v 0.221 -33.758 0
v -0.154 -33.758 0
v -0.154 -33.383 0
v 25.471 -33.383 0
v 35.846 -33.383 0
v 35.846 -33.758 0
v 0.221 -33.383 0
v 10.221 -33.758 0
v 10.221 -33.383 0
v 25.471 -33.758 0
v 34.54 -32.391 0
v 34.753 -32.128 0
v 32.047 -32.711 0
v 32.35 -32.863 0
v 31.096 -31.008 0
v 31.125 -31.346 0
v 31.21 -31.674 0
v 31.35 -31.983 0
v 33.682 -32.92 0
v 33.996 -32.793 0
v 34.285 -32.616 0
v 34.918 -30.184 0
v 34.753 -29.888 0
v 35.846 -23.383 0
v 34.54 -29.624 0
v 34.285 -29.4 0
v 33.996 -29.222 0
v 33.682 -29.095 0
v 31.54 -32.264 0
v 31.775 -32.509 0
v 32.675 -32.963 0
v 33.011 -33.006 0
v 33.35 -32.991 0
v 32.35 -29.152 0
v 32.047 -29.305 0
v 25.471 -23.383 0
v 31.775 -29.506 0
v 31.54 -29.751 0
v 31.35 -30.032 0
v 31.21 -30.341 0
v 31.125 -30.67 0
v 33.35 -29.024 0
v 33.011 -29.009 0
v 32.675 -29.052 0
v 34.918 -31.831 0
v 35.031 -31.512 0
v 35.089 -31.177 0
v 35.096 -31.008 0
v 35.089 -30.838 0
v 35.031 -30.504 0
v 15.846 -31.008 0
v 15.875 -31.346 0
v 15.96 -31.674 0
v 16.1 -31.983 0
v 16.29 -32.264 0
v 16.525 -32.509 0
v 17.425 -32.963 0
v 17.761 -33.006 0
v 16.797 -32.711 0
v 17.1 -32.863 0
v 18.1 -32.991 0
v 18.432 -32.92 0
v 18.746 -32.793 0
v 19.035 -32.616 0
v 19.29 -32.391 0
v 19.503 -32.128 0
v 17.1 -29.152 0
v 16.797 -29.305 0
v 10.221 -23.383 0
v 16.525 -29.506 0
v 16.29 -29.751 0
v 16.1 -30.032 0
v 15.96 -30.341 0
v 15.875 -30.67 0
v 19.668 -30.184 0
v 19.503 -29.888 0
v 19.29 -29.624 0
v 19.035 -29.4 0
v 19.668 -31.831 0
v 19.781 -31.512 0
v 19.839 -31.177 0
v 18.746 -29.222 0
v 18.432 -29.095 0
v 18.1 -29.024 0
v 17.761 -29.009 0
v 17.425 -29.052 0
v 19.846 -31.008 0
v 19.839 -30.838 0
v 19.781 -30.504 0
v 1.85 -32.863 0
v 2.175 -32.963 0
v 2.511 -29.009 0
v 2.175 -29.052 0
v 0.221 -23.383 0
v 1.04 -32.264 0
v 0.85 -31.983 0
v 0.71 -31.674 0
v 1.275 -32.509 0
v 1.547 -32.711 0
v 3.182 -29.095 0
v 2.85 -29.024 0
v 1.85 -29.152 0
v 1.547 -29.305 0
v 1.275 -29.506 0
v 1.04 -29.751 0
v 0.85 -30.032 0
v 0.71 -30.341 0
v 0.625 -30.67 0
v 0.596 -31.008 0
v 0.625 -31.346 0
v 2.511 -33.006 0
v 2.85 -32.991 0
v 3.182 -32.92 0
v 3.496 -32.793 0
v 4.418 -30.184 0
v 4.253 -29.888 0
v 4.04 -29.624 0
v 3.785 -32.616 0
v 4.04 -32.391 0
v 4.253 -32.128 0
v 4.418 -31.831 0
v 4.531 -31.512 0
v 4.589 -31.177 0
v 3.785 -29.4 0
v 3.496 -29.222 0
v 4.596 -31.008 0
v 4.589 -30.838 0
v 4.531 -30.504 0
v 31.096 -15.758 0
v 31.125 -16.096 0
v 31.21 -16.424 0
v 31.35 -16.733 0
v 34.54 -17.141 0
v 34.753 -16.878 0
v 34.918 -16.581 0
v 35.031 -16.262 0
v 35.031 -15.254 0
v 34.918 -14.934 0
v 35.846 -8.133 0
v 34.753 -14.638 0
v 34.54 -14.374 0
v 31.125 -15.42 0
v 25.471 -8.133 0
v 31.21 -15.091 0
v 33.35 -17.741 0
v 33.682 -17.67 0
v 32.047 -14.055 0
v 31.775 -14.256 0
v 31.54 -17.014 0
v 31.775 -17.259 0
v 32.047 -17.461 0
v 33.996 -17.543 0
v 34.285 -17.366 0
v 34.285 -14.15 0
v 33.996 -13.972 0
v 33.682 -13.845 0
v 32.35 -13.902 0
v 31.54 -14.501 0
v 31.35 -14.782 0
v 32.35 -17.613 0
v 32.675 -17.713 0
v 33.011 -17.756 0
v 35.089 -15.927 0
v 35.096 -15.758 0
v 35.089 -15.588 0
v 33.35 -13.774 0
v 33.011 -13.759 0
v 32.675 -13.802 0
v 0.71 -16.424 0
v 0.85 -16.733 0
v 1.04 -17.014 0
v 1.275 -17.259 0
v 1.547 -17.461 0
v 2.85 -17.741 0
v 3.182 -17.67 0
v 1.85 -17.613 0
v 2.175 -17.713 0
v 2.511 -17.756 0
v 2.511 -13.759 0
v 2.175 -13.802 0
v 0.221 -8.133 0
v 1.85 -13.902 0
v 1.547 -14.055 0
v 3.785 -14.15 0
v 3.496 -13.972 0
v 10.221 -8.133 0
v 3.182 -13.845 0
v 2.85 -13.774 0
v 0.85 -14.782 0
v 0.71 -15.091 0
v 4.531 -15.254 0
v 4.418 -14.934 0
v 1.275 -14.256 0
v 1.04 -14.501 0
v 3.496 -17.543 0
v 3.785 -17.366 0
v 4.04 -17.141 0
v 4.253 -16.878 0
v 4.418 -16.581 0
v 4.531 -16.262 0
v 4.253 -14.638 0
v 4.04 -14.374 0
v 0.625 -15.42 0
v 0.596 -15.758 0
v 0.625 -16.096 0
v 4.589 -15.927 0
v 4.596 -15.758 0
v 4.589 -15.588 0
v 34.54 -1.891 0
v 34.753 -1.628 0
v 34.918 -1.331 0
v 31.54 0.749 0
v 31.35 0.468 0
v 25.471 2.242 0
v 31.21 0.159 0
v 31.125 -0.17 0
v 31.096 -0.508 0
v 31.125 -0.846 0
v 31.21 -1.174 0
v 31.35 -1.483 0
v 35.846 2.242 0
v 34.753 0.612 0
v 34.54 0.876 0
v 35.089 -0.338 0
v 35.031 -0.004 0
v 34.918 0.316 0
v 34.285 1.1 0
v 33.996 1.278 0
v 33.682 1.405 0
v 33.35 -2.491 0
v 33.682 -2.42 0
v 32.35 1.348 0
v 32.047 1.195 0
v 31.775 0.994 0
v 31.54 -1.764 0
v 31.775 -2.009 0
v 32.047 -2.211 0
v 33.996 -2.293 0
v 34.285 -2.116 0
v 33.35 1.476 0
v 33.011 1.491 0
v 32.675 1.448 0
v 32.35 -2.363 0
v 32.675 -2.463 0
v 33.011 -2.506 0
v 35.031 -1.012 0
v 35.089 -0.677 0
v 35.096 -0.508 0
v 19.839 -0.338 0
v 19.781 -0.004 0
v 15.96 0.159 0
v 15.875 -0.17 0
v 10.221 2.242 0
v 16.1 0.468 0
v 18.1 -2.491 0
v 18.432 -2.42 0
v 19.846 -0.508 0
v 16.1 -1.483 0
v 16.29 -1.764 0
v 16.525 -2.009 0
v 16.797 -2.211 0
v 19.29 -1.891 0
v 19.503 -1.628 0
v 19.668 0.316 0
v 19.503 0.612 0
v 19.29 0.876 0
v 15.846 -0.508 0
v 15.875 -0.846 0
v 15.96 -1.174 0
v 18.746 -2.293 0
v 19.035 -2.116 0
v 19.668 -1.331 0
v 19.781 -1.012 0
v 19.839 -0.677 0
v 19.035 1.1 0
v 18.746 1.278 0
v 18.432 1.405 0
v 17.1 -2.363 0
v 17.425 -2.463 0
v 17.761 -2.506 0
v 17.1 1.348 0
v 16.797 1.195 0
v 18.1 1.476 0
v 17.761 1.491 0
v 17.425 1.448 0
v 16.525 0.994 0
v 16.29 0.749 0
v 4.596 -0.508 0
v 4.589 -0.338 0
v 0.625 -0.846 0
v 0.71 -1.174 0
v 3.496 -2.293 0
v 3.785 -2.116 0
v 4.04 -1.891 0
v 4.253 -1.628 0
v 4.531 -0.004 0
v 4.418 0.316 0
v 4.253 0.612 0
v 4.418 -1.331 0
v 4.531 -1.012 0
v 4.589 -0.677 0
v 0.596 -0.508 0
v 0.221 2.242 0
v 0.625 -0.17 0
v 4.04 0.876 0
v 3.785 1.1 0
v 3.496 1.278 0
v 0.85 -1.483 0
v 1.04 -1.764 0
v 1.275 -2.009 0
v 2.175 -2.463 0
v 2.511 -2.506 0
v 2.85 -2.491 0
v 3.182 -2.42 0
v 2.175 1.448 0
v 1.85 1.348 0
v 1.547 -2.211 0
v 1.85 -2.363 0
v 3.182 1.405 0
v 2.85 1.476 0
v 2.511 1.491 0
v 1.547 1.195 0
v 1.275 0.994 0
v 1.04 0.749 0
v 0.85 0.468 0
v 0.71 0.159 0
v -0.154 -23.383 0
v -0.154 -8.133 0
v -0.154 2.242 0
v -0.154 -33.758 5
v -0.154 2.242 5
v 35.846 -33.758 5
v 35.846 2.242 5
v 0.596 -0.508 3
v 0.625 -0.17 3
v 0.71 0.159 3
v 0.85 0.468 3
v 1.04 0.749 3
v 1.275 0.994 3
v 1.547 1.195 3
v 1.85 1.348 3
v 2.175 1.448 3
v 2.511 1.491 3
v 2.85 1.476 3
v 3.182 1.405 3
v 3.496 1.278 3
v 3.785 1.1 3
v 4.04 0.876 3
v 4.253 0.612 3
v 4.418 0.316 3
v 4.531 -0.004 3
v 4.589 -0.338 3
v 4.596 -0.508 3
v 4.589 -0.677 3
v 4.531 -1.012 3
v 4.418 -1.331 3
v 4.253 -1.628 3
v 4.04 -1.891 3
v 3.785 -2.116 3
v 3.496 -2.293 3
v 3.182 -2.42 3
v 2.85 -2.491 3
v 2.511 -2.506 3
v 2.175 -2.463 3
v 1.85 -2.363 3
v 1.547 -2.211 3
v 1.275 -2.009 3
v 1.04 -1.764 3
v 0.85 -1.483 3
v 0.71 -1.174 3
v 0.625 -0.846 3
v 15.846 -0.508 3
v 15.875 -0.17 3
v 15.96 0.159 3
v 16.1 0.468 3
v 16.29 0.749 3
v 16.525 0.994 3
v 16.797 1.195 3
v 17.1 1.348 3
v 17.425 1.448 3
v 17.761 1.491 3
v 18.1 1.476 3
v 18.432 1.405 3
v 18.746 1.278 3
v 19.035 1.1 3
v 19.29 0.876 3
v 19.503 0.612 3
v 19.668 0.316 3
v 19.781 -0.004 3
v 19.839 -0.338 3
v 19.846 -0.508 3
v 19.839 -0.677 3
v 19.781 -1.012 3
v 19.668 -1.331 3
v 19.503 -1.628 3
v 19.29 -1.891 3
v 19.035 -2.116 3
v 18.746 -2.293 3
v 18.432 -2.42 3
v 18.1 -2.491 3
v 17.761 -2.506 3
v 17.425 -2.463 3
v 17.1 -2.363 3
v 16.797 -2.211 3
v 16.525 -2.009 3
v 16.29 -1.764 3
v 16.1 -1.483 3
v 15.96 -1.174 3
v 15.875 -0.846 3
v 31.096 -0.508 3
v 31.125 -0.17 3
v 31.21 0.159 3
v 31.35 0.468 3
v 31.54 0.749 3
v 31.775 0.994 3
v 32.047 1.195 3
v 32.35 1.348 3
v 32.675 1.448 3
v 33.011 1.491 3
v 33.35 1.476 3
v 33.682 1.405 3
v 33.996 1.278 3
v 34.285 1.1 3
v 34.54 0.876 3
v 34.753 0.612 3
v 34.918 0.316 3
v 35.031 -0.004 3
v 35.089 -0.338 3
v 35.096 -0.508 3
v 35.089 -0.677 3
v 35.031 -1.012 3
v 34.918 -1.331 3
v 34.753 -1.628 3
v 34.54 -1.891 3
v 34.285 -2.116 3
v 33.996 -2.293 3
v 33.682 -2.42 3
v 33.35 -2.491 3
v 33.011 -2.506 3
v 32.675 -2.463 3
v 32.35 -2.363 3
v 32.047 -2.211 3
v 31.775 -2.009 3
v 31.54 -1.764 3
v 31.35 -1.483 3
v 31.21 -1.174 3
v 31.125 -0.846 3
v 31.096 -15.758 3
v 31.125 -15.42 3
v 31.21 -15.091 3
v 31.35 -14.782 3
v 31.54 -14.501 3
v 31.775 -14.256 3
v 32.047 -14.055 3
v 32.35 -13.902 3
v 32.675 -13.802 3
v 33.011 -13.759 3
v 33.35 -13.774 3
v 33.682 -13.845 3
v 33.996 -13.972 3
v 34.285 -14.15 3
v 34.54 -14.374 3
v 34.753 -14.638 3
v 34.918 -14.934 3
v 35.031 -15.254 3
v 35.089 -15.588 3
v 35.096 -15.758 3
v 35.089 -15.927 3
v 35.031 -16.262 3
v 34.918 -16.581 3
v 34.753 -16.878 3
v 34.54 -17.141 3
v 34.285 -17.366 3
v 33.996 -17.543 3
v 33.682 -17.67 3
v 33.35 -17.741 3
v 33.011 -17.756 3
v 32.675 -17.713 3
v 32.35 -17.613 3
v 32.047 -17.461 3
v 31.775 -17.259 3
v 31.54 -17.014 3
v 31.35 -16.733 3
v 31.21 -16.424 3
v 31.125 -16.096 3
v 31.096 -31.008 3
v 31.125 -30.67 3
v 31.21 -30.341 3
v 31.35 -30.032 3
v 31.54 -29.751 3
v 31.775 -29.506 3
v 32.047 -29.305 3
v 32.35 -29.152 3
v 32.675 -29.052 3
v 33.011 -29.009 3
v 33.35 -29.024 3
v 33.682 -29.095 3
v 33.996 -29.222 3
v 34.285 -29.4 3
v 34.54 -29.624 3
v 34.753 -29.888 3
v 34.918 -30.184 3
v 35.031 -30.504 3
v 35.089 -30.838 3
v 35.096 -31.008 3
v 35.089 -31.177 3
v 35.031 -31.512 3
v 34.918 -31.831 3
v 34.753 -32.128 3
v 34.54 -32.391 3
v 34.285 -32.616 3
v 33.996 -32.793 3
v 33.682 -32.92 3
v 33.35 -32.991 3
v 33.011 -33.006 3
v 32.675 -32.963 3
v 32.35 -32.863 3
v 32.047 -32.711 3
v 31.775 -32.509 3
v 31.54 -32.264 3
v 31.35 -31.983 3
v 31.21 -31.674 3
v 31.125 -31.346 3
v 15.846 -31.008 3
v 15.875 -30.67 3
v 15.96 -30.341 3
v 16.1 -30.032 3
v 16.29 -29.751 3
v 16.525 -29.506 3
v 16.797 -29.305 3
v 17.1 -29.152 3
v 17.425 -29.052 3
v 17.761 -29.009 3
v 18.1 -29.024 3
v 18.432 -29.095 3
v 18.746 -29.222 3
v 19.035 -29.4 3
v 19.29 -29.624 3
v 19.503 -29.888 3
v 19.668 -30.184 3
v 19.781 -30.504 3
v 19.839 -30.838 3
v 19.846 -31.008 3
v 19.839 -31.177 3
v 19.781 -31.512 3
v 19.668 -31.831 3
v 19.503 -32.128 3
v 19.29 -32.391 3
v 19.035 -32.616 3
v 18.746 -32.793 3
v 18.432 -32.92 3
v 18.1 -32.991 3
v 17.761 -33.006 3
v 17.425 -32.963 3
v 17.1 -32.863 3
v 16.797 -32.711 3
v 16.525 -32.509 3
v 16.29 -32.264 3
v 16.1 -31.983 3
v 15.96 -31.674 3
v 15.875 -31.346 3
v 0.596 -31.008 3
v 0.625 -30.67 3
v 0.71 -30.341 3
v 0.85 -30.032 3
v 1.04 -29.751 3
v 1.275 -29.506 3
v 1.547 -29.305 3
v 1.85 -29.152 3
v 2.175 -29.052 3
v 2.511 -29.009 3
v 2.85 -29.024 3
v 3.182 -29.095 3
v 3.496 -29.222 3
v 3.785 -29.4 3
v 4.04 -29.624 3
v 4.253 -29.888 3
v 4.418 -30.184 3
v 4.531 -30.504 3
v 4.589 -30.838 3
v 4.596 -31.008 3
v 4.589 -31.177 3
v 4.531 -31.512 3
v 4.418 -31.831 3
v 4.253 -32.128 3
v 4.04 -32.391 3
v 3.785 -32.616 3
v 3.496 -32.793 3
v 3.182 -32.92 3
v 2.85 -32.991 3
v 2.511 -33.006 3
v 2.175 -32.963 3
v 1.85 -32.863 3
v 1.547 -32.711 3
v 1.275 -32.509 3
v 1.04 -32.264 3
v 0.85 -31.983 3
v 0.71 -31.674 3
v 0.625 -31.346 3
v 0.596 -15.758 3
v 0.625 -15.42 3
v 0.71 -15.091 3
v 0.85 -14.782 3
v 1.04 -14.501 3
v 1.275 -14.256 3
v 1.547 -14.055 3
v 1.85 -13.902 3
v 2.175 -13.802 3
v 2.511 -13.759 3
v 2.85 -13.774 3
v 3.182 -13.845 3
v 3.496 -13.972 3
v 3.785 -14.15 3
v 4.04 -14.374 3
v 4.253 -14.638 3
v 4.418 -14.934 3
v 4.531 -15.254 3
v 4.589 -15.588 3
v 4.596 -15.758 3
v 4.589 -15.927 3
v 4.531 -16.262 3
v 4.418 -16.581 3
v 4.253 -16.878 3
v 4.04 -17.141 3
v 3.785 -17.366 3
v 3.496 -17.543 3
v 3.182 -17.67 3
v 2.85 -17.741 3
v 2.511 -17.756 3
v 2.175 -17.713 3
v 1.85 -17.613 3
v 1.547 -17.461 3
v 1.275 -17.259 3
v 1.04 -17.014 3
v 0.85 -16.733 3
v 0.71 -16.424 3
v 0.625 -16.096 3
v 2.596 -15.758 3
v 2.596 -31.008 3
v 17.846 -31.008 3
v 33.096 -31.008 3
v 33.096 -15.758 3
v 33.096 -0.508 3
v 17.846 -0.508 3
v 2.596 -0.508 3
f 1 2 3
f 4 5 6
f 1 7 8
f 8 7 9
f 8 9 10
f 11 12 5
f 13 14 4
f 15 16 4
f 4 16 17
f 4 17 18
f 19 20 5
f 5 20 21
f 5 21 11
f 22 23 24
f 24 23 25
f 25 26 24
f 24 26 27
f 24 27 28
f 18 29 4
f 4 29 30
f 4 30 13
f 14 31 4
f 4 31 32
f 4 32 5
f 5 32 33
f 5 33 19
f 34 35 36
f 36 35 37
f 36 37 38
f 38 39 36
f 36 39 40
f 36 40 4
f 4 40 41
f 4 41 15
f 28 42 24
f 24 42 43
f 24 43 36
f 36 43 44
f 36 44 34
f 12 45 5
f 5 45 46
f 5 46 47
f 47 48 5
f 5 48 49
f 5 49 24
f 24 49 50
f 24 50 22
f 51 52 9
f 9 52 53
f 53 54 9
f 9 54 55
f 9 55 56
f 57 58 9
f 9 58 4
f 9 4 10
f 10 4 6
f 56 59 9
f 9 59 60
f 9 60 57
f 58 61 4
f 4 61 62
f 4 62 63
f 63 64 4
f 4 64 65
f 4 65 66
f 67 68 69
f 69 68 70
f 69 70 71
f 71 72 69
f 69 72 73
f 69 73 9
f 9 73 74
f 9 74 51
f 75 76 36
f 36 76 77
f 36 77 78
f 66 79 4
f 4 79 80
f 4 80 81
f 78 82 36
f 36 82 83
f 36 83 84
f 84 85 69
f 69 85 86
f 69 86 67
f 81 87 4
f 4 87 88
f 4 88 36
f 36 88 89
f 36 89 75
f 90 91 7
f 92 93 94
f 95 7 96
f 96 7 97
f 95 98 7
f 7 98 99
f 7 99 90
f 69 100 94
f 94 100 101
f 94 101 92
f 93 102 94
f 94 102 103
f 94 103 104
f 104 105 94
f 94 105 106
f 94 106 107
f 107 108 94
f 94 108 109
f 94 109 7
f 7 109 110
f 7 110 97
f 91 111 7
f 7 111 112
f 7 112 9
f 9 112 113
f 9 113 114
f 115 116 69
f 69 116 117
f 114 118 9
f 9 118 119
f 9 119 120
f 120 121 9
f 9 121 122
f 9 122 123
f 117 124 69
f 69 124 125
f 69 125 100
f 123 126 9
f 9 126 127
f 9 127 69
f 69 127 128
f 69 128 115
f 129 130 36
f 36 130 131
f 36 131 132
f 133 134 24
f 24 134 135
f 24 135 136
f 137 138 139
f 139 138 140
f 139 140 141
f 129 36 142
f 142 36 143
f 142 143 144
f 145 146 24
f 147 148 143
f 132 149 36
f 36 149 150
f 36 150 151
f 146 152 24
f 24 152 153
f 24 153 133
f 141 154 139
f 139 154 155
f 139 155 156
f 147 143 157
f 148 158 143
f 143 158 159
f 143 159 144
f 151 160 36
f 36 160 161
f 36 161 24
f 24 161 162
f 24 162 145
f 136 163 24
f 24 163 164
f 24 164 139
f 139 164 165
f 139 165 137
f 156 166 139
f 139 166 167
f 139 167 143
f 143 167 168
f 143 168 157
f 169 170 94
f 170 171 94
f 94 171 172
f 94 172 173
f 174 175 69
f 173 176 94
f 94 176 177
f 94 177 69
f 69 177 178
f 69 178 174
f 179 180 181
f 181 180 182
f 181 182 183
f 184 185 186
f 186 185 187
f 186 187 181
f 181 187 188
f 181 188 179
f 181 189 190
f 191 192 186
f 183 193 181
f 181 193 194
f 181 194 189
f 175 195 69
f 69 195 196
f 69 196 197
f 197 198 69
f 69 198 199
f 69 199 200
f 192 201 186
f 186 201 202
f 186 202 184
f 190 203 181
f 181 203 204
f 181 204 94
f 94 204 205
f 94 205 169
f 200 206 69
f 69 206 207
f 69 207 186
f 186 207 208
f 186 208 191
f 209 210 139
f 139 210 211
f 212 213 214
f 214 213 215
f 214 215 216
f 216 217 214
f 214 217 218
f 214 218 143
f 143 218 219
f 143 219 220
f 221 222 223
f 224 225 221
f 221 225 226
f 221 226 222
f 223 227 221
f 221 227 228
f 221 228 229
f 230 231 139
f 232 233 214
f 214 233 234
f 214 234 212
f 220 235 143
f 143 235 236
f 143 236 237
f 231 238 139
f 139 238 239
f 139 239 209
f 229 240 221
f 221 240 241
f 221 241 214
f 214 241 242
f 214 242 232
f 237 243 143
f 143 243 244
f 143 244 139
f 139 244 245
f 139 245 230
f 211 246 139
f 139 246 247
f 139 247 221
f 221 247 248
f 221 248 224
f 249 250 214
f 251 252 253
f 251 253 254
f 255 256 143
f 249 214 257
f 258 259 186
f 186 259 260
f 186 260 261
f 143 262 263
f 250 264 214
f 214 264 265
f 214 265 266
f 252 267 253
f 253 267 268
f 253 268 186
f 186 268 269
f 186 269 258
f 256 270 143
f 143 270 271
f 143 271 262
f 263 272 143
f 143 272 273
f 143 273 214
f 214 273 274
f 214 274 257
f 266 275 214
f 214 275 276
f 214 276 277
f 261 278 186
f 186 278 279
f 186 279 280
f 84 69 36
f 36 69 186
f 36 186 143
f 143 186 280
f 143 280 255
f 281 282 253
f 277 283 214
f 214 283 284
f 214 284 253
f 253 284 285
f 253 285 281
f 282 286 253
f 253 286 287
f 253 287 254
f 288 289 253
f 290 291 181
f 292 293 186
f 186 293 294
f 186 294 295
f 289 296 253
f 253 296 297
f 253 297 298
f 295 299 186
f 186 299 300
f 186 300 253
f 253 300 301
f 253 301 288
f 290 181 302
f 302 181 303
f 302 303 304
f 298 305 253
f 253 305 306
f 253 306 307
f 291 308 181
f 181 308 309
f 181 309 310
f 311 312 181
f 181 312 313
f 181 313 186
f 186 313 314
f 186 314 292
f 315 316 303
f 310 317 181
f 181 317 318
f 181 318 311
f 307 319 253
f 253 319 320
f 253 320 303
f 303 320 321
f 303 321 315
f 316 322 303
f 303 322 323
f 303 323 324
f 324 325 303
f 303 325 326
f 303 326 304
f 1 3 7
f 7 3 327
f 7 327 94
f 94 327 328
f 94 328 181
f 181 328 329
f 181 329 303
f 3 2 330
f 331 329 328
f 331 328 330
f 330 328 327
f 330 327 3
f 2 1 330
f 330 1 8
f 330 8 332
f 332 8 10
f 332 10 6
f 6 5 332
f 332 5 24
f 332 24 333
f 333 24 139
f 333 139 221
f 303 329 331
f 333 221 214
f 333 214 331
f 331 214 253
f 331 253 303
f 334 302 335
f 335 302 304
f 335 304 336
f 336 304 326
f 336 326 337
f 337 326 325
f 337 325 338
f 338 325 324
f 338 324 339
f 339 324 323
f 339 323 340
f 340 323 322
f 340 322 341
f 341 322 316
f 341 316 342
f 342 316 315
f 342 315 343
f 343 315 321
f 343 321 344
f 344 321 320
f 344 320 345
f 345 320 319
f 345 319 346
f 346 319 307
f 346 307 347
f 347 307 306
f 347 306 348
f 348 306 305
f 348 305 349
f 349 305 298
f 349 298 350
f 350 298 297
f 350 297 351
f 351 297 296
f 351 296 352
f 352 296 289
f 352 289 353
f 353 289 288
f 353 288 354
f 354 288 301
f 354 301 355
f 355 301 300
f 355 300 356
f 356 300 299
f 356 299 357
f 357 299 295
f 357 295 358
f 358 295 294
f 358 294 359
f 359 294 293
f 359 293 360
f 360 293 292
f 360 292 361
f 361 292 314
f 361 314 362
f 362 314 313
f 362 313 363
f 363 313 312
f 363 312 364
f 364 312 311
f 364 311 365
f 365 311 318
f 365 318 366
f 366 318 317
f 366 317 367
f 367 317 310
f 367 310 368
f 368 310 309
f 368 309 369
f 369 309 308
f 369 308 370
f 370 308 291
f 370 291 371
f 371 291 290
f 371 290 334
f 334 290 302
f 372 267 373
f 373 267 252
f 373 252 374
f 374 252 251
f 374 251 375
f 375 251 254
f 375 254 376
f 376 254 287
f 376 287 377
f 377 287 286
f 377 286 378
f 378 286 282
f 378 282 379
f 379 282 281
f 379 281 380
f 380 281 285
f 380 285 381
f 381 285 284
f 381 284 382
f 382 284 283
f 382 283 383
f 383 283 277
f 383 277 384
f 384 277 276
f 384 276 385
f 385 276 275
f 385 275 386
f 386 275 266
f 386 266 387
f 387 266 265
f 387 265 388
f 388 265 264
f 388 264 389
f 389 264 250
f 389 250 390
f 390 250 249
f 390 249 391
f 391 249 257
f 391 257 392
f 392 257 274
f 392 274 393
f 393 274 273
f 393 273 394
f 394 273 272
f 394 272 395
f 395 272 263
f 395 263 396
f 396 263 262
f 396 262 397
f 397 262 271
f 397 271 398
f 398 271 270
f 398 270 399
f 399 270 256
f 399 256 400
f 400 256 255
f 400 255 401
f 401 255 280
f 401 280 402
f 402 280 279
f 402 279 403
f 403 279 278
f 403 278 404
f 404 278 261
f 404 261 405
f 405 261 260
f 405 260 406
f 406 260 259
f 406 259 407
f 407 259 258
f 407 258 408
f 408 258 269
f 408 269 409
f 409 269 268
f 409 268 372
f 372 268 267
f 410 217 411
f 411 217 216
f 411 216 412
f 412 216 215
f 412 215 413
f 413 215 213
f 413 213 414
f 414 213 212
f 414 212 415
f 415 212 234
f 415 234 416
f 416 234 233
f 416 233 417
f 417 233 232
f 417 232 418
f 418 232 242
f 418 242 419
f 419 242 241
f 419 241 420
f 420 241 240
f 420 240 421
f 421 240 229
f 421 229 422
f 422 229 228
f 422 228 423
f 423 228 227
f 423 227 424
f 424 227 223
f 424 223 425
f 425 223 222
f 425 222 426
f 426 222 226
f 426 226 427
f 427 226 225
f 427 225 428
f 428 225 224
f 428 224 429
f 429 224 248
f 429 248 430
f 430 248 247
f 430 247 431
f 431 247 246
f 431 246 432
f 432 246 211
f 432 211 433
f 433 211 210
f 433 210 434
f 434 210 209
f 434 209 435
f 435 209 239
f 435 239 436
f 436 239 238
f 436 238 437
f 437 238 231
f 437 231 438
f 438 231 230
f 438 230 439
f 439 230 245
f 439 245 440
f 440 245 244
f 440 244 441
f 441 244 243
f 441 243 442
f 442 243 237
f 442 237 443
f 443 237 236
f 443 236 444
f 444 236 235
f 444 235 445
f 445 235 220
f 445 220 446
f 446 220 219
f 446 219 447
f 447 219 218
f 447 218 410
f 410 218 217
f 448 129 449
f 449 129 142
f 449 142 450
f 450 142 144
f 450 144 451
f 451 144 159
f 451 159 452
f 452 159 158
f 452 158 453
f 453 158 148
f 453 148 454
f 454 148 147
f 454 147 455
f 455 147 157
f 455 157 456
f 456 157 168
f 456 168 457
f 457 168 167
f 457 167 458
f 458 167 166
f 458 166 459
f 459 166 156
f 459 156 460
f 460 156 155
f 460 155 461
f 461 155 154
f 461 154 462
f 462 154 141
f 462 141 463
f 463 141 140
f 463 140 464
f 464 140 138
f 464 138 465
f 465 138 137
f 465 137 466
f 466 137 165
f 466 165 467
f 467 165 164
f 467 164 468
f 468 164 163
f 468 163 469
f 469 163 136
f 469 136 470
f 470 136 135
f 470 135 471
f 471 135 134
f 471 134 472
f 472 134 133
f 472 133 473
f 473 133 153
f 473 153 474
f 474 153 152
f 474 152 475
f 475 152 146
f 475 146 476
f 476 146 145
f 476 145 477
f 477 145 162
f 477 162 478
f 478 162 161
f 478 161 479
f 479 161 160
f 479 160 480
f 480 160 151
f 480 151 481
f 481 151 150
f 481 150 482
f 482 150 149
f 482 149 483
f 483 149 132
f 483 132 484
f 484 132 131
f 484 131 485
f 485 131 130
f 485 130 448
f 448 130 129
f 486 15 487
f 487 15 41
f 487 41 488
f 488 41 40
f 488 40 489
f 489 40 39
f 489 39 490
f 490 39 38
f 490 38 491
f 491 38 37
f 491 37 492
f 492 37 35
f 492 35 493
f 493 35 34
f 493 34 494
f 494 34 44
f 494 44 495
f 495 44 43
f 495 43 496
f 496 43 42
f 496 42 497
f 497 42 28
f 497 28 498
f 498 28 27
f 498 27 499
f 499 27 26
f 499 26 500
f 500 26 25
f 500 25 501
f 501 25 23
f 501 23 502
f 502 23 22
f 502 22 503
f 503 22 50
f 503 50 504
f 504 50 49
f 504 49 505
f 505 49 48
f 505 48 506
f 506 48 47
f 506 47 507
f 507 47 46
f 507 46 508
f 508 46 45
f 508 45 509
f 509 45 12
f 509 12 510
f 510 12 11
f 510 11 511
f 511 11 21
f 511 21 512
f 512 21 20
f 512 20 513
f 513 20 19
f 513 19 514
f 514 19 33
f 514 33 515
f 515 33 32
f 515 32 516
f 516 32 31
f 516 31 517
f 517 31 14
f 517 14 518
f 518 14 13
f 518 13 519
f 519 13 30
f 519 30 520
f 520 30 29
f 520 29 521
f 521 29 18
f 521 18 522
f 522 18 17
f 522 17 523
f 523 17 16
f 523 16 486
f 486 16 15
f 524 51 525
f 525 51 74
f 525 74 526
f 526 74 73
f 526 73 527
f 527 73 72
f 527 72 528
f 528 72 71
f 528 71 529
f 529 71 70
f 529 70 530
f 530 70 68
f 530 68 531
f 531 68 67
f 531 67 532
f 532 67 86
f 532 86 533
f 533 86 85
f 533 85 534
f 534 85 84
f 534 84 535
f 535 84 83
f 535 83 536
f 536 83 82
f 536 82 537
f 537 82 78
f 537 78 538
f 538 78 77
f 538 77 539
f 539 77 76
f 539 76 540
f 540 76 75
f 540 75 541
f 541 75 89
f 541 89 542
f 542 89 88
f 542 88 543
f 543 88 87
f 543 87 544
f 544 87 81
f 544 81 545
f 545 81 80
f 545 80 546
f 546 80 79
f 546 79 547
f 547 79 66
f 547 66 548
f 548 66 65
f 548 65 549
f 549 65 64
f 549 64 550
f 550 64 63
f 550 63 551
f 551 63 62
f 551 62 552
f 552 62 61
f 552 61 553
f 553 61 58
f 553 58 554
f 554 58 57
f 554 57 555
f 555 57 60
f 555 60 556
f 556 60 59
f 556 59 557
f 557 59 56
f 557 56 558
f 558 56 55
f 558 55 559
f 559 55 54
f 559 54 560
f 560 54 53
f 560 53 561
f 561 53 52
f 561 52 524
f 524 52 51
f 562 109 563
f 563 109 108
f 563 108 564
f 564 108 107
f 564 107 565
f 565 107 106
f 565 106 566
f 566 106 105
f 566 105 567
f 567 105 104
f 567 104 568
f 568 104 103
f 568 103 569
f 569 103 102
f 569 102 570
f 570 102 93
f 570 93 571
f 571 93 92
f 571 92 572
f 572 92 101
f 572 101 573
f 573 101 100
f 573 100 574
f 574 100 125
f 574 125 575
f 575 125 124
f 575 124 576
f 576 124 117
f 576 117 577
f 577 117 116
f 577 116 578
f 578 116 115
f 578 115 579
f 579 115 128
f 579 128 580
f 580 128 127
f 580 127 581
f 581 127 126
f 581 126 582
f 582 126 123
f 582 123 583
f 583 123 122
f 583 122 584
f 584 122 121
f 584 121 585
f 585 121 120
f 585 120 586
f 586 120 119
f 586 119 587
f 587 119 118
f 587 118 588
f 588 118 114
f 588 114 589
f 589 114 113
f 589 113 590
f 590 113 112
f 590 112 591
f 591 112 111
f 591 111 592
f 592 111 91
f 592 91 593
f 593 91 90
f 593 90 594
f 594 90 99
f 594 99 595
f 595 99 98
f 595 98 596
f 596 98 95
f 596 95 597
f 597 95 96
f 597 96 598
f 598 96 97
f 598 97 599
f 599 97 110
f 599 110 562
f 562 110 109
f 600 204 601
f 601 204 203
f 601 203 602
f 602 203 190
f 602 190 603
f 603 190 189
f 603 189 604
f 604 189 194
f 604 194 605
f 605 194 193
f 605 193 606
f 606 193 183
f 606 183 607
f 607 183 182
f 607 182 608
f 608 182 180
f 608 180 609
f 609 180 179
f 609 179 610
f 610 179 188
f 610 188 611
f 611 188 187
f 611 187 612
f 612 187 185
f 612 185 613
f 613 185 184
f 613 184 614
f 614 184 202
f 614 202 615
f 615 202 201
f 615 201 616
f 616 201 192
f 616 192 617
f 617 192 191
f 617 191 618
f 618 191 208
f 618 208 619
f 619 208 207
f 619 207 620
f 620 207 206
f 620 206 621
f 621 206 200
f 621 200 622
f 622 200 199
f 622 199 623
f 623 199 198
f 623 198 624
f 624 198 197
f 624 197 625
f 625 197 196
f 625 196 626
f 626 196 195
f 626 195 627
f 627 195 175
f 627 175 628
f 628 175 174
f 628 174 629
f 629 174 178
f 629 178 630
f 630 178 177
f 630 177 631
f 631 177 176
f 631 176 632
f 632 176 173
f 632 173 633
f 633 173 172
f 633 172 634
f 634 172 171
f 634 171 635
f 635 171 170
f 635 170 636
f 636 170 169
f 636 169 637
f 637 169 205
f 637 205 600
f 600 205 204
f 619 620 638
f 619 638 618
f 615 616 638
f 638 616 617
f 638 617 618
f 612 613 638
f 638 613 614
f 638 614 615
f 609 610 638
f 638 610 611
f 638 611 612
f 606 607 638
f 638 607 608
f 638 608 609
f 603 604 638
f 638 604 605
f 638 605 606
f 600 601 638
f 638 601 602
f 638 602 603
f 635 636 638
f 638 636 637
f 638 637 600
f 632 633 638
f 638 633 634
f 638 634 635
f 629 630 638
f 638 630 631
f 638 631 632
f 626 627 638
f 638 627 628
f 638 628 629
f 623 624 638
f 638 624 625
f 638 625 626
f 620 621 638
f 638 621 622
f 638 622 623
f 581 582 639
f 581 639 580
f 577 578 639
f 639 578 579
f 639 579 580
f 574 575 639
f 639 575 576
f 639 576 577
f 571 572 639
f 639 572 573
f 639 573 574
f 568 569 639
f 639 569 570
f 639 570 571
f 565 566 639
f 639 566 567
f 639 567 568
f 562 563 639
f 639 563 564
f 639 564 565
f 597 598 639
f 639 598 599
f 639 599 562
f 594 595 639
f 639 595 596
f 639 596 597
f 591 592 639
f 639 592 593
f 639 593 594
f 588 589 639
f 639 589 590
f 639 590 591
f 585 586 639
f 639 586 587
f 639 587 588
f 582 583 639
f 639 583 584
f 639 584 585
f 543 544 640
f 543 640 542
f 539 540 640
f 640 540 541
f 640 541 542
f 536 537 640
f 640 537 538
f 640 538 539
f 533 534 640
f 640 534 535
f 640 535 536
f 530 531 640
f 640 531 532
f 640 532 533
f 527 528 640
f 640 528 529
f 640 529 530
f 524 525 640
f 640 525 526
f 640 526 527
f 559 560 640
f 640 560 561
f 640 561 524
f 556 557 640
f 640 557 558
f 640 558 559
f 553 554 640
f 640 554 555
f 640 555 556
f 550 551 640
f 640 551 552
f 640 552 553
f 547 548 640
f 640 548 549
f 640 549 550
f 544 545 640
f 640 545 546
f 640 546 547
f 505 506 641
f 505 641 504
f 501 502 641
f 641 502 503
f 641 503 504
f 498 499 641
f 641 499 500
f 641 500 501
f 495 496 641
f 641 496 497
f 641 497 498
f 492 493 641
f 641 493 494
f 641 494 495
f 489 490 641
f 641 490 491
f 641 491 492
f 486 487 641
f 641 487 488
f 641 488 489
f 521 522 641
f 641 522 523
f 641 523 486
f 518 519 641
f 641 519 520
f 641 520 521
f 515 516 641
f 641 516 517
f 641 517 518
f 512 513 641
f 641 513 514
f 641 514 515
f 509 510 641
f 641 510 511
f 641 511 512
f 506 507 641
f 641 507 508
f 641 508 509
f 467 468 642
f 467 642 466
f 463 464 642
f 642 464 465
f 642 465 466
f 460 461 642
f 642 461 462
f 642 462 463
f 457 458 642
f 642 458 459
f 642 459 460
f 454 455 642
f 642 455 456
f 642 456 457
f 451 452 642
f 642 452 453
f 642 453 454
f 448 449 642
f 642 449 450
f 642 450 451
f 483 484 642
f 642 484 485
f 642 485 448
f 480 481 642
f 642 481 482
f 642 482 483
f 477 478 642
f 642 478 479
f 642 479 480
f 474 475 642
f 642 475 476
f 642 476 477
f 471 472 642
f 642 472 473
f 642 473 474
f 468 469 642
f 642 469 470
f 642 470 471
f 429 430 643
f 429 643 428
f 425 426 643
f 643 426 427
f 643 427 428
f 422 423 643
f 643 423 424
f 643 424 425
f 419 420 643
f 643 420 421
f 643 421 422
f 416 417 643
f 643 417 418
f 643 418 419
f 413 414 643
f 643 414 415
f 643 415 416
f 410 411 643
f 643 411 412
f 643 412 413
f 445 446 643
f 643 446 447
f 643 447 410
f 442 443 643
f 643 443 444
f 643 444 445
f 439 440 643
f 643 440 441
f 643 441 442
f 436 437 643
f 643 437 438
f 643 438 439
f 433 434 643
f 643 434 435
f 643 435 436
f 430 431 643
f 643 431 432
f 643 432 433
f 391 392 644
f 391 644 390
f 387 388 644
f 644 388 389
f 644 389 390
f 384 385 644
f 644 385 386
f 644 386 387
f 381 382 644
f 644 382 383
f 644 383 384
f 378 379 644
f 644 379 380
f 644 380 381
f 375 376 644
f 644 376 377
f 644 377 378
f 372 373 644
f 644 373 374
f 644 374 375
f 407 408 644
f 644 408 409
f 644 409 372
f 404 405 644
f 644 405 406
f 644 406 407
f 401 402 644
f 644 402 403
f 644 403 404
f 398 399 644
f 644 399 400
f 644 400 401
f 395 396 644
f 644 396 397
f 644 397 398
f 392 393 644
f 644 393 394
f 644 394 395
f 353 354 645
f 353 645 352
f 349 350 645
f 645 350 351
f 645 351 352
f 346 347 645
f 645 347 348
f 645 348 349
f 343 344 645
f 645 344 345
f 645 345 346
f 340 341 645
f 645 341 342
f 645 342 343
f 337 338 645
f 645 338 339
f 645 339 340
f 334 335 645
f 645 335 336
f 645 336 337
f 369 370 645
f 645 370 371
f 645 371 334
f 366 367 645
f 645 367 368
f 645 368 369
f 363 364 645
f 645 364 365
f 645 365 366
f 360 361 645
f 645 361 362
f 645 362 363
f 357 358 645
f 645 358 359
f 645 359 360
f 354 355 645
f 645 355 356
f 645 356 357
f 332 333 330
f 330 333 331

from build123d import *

# Parameters (mm, degrees)
SKETCH_1_W      = 36
SKETCH_1_H      = 36
SKETCH_1_R      = 2
EXTRUDE_1_DEPTH = 3
SKETCH_2_W      = 36
SKETCH_2_H      = 36
EXTRUDE_2_DEPTH = 2


with BuildPart() as part:
    # 스케치1 → 보스-돌출1 (new body)
    with BuildSketch(Plane.XY):
        with Locations((17.845923561, -15.757575758)):
            Rectangle(SKETCH_1_W, SKETCH_1_H)
        with Locations((2.595923561, -0.507575758)):
            Circle(SKETCH_1_R, mode=Mode.SUBTRACT)
        with Locations((17.845923561, -0.507575758)):
            Circle(SKETCH_1_R, mode=Mode.SUBTRACT)
        with Locations((33.095923561, -0.507575758)):
            Circle(SKETCH_1_R, mode=Mode.SUBTRACT)
        with Locations((33.095923561, -15.757575758)):
            Circle(SKETCH_1_R, mode=Mode.SUBTRACT)
        with Locations((33.095923561, -31.007575758)):
            Circle(SKETCH_1_R, mode=Mode.SUBTRACT)
        with Locations((17.845923561, -31.007575758)):
            Circle(SKETCH_1_R, mode=Mode.SUBTRACT)
        with Locations((2.595923561, -31.007575758)):
            Circle(SKETCH_1_R, mode=Mode.SUBTRACT)
        with Locations((2.595923561, -15.757575758)):
            Circle(SKETCH_1_R, mode=Mode.SUBTRACT)
    extrude(amount=EXTRUDE_1_DEPTH)

    # 스케치2 → 보스-돌출2 (add)
    with BuildSketch(Plane.XY.offset(3)):
        with Locations((17.845923561, -15.757575758)):
            Rectangle(SKETCH_2_W, SKETCH_2_H)
    extrude(amount=EXTRUDE_2_DEPTH)


solid = part.part
